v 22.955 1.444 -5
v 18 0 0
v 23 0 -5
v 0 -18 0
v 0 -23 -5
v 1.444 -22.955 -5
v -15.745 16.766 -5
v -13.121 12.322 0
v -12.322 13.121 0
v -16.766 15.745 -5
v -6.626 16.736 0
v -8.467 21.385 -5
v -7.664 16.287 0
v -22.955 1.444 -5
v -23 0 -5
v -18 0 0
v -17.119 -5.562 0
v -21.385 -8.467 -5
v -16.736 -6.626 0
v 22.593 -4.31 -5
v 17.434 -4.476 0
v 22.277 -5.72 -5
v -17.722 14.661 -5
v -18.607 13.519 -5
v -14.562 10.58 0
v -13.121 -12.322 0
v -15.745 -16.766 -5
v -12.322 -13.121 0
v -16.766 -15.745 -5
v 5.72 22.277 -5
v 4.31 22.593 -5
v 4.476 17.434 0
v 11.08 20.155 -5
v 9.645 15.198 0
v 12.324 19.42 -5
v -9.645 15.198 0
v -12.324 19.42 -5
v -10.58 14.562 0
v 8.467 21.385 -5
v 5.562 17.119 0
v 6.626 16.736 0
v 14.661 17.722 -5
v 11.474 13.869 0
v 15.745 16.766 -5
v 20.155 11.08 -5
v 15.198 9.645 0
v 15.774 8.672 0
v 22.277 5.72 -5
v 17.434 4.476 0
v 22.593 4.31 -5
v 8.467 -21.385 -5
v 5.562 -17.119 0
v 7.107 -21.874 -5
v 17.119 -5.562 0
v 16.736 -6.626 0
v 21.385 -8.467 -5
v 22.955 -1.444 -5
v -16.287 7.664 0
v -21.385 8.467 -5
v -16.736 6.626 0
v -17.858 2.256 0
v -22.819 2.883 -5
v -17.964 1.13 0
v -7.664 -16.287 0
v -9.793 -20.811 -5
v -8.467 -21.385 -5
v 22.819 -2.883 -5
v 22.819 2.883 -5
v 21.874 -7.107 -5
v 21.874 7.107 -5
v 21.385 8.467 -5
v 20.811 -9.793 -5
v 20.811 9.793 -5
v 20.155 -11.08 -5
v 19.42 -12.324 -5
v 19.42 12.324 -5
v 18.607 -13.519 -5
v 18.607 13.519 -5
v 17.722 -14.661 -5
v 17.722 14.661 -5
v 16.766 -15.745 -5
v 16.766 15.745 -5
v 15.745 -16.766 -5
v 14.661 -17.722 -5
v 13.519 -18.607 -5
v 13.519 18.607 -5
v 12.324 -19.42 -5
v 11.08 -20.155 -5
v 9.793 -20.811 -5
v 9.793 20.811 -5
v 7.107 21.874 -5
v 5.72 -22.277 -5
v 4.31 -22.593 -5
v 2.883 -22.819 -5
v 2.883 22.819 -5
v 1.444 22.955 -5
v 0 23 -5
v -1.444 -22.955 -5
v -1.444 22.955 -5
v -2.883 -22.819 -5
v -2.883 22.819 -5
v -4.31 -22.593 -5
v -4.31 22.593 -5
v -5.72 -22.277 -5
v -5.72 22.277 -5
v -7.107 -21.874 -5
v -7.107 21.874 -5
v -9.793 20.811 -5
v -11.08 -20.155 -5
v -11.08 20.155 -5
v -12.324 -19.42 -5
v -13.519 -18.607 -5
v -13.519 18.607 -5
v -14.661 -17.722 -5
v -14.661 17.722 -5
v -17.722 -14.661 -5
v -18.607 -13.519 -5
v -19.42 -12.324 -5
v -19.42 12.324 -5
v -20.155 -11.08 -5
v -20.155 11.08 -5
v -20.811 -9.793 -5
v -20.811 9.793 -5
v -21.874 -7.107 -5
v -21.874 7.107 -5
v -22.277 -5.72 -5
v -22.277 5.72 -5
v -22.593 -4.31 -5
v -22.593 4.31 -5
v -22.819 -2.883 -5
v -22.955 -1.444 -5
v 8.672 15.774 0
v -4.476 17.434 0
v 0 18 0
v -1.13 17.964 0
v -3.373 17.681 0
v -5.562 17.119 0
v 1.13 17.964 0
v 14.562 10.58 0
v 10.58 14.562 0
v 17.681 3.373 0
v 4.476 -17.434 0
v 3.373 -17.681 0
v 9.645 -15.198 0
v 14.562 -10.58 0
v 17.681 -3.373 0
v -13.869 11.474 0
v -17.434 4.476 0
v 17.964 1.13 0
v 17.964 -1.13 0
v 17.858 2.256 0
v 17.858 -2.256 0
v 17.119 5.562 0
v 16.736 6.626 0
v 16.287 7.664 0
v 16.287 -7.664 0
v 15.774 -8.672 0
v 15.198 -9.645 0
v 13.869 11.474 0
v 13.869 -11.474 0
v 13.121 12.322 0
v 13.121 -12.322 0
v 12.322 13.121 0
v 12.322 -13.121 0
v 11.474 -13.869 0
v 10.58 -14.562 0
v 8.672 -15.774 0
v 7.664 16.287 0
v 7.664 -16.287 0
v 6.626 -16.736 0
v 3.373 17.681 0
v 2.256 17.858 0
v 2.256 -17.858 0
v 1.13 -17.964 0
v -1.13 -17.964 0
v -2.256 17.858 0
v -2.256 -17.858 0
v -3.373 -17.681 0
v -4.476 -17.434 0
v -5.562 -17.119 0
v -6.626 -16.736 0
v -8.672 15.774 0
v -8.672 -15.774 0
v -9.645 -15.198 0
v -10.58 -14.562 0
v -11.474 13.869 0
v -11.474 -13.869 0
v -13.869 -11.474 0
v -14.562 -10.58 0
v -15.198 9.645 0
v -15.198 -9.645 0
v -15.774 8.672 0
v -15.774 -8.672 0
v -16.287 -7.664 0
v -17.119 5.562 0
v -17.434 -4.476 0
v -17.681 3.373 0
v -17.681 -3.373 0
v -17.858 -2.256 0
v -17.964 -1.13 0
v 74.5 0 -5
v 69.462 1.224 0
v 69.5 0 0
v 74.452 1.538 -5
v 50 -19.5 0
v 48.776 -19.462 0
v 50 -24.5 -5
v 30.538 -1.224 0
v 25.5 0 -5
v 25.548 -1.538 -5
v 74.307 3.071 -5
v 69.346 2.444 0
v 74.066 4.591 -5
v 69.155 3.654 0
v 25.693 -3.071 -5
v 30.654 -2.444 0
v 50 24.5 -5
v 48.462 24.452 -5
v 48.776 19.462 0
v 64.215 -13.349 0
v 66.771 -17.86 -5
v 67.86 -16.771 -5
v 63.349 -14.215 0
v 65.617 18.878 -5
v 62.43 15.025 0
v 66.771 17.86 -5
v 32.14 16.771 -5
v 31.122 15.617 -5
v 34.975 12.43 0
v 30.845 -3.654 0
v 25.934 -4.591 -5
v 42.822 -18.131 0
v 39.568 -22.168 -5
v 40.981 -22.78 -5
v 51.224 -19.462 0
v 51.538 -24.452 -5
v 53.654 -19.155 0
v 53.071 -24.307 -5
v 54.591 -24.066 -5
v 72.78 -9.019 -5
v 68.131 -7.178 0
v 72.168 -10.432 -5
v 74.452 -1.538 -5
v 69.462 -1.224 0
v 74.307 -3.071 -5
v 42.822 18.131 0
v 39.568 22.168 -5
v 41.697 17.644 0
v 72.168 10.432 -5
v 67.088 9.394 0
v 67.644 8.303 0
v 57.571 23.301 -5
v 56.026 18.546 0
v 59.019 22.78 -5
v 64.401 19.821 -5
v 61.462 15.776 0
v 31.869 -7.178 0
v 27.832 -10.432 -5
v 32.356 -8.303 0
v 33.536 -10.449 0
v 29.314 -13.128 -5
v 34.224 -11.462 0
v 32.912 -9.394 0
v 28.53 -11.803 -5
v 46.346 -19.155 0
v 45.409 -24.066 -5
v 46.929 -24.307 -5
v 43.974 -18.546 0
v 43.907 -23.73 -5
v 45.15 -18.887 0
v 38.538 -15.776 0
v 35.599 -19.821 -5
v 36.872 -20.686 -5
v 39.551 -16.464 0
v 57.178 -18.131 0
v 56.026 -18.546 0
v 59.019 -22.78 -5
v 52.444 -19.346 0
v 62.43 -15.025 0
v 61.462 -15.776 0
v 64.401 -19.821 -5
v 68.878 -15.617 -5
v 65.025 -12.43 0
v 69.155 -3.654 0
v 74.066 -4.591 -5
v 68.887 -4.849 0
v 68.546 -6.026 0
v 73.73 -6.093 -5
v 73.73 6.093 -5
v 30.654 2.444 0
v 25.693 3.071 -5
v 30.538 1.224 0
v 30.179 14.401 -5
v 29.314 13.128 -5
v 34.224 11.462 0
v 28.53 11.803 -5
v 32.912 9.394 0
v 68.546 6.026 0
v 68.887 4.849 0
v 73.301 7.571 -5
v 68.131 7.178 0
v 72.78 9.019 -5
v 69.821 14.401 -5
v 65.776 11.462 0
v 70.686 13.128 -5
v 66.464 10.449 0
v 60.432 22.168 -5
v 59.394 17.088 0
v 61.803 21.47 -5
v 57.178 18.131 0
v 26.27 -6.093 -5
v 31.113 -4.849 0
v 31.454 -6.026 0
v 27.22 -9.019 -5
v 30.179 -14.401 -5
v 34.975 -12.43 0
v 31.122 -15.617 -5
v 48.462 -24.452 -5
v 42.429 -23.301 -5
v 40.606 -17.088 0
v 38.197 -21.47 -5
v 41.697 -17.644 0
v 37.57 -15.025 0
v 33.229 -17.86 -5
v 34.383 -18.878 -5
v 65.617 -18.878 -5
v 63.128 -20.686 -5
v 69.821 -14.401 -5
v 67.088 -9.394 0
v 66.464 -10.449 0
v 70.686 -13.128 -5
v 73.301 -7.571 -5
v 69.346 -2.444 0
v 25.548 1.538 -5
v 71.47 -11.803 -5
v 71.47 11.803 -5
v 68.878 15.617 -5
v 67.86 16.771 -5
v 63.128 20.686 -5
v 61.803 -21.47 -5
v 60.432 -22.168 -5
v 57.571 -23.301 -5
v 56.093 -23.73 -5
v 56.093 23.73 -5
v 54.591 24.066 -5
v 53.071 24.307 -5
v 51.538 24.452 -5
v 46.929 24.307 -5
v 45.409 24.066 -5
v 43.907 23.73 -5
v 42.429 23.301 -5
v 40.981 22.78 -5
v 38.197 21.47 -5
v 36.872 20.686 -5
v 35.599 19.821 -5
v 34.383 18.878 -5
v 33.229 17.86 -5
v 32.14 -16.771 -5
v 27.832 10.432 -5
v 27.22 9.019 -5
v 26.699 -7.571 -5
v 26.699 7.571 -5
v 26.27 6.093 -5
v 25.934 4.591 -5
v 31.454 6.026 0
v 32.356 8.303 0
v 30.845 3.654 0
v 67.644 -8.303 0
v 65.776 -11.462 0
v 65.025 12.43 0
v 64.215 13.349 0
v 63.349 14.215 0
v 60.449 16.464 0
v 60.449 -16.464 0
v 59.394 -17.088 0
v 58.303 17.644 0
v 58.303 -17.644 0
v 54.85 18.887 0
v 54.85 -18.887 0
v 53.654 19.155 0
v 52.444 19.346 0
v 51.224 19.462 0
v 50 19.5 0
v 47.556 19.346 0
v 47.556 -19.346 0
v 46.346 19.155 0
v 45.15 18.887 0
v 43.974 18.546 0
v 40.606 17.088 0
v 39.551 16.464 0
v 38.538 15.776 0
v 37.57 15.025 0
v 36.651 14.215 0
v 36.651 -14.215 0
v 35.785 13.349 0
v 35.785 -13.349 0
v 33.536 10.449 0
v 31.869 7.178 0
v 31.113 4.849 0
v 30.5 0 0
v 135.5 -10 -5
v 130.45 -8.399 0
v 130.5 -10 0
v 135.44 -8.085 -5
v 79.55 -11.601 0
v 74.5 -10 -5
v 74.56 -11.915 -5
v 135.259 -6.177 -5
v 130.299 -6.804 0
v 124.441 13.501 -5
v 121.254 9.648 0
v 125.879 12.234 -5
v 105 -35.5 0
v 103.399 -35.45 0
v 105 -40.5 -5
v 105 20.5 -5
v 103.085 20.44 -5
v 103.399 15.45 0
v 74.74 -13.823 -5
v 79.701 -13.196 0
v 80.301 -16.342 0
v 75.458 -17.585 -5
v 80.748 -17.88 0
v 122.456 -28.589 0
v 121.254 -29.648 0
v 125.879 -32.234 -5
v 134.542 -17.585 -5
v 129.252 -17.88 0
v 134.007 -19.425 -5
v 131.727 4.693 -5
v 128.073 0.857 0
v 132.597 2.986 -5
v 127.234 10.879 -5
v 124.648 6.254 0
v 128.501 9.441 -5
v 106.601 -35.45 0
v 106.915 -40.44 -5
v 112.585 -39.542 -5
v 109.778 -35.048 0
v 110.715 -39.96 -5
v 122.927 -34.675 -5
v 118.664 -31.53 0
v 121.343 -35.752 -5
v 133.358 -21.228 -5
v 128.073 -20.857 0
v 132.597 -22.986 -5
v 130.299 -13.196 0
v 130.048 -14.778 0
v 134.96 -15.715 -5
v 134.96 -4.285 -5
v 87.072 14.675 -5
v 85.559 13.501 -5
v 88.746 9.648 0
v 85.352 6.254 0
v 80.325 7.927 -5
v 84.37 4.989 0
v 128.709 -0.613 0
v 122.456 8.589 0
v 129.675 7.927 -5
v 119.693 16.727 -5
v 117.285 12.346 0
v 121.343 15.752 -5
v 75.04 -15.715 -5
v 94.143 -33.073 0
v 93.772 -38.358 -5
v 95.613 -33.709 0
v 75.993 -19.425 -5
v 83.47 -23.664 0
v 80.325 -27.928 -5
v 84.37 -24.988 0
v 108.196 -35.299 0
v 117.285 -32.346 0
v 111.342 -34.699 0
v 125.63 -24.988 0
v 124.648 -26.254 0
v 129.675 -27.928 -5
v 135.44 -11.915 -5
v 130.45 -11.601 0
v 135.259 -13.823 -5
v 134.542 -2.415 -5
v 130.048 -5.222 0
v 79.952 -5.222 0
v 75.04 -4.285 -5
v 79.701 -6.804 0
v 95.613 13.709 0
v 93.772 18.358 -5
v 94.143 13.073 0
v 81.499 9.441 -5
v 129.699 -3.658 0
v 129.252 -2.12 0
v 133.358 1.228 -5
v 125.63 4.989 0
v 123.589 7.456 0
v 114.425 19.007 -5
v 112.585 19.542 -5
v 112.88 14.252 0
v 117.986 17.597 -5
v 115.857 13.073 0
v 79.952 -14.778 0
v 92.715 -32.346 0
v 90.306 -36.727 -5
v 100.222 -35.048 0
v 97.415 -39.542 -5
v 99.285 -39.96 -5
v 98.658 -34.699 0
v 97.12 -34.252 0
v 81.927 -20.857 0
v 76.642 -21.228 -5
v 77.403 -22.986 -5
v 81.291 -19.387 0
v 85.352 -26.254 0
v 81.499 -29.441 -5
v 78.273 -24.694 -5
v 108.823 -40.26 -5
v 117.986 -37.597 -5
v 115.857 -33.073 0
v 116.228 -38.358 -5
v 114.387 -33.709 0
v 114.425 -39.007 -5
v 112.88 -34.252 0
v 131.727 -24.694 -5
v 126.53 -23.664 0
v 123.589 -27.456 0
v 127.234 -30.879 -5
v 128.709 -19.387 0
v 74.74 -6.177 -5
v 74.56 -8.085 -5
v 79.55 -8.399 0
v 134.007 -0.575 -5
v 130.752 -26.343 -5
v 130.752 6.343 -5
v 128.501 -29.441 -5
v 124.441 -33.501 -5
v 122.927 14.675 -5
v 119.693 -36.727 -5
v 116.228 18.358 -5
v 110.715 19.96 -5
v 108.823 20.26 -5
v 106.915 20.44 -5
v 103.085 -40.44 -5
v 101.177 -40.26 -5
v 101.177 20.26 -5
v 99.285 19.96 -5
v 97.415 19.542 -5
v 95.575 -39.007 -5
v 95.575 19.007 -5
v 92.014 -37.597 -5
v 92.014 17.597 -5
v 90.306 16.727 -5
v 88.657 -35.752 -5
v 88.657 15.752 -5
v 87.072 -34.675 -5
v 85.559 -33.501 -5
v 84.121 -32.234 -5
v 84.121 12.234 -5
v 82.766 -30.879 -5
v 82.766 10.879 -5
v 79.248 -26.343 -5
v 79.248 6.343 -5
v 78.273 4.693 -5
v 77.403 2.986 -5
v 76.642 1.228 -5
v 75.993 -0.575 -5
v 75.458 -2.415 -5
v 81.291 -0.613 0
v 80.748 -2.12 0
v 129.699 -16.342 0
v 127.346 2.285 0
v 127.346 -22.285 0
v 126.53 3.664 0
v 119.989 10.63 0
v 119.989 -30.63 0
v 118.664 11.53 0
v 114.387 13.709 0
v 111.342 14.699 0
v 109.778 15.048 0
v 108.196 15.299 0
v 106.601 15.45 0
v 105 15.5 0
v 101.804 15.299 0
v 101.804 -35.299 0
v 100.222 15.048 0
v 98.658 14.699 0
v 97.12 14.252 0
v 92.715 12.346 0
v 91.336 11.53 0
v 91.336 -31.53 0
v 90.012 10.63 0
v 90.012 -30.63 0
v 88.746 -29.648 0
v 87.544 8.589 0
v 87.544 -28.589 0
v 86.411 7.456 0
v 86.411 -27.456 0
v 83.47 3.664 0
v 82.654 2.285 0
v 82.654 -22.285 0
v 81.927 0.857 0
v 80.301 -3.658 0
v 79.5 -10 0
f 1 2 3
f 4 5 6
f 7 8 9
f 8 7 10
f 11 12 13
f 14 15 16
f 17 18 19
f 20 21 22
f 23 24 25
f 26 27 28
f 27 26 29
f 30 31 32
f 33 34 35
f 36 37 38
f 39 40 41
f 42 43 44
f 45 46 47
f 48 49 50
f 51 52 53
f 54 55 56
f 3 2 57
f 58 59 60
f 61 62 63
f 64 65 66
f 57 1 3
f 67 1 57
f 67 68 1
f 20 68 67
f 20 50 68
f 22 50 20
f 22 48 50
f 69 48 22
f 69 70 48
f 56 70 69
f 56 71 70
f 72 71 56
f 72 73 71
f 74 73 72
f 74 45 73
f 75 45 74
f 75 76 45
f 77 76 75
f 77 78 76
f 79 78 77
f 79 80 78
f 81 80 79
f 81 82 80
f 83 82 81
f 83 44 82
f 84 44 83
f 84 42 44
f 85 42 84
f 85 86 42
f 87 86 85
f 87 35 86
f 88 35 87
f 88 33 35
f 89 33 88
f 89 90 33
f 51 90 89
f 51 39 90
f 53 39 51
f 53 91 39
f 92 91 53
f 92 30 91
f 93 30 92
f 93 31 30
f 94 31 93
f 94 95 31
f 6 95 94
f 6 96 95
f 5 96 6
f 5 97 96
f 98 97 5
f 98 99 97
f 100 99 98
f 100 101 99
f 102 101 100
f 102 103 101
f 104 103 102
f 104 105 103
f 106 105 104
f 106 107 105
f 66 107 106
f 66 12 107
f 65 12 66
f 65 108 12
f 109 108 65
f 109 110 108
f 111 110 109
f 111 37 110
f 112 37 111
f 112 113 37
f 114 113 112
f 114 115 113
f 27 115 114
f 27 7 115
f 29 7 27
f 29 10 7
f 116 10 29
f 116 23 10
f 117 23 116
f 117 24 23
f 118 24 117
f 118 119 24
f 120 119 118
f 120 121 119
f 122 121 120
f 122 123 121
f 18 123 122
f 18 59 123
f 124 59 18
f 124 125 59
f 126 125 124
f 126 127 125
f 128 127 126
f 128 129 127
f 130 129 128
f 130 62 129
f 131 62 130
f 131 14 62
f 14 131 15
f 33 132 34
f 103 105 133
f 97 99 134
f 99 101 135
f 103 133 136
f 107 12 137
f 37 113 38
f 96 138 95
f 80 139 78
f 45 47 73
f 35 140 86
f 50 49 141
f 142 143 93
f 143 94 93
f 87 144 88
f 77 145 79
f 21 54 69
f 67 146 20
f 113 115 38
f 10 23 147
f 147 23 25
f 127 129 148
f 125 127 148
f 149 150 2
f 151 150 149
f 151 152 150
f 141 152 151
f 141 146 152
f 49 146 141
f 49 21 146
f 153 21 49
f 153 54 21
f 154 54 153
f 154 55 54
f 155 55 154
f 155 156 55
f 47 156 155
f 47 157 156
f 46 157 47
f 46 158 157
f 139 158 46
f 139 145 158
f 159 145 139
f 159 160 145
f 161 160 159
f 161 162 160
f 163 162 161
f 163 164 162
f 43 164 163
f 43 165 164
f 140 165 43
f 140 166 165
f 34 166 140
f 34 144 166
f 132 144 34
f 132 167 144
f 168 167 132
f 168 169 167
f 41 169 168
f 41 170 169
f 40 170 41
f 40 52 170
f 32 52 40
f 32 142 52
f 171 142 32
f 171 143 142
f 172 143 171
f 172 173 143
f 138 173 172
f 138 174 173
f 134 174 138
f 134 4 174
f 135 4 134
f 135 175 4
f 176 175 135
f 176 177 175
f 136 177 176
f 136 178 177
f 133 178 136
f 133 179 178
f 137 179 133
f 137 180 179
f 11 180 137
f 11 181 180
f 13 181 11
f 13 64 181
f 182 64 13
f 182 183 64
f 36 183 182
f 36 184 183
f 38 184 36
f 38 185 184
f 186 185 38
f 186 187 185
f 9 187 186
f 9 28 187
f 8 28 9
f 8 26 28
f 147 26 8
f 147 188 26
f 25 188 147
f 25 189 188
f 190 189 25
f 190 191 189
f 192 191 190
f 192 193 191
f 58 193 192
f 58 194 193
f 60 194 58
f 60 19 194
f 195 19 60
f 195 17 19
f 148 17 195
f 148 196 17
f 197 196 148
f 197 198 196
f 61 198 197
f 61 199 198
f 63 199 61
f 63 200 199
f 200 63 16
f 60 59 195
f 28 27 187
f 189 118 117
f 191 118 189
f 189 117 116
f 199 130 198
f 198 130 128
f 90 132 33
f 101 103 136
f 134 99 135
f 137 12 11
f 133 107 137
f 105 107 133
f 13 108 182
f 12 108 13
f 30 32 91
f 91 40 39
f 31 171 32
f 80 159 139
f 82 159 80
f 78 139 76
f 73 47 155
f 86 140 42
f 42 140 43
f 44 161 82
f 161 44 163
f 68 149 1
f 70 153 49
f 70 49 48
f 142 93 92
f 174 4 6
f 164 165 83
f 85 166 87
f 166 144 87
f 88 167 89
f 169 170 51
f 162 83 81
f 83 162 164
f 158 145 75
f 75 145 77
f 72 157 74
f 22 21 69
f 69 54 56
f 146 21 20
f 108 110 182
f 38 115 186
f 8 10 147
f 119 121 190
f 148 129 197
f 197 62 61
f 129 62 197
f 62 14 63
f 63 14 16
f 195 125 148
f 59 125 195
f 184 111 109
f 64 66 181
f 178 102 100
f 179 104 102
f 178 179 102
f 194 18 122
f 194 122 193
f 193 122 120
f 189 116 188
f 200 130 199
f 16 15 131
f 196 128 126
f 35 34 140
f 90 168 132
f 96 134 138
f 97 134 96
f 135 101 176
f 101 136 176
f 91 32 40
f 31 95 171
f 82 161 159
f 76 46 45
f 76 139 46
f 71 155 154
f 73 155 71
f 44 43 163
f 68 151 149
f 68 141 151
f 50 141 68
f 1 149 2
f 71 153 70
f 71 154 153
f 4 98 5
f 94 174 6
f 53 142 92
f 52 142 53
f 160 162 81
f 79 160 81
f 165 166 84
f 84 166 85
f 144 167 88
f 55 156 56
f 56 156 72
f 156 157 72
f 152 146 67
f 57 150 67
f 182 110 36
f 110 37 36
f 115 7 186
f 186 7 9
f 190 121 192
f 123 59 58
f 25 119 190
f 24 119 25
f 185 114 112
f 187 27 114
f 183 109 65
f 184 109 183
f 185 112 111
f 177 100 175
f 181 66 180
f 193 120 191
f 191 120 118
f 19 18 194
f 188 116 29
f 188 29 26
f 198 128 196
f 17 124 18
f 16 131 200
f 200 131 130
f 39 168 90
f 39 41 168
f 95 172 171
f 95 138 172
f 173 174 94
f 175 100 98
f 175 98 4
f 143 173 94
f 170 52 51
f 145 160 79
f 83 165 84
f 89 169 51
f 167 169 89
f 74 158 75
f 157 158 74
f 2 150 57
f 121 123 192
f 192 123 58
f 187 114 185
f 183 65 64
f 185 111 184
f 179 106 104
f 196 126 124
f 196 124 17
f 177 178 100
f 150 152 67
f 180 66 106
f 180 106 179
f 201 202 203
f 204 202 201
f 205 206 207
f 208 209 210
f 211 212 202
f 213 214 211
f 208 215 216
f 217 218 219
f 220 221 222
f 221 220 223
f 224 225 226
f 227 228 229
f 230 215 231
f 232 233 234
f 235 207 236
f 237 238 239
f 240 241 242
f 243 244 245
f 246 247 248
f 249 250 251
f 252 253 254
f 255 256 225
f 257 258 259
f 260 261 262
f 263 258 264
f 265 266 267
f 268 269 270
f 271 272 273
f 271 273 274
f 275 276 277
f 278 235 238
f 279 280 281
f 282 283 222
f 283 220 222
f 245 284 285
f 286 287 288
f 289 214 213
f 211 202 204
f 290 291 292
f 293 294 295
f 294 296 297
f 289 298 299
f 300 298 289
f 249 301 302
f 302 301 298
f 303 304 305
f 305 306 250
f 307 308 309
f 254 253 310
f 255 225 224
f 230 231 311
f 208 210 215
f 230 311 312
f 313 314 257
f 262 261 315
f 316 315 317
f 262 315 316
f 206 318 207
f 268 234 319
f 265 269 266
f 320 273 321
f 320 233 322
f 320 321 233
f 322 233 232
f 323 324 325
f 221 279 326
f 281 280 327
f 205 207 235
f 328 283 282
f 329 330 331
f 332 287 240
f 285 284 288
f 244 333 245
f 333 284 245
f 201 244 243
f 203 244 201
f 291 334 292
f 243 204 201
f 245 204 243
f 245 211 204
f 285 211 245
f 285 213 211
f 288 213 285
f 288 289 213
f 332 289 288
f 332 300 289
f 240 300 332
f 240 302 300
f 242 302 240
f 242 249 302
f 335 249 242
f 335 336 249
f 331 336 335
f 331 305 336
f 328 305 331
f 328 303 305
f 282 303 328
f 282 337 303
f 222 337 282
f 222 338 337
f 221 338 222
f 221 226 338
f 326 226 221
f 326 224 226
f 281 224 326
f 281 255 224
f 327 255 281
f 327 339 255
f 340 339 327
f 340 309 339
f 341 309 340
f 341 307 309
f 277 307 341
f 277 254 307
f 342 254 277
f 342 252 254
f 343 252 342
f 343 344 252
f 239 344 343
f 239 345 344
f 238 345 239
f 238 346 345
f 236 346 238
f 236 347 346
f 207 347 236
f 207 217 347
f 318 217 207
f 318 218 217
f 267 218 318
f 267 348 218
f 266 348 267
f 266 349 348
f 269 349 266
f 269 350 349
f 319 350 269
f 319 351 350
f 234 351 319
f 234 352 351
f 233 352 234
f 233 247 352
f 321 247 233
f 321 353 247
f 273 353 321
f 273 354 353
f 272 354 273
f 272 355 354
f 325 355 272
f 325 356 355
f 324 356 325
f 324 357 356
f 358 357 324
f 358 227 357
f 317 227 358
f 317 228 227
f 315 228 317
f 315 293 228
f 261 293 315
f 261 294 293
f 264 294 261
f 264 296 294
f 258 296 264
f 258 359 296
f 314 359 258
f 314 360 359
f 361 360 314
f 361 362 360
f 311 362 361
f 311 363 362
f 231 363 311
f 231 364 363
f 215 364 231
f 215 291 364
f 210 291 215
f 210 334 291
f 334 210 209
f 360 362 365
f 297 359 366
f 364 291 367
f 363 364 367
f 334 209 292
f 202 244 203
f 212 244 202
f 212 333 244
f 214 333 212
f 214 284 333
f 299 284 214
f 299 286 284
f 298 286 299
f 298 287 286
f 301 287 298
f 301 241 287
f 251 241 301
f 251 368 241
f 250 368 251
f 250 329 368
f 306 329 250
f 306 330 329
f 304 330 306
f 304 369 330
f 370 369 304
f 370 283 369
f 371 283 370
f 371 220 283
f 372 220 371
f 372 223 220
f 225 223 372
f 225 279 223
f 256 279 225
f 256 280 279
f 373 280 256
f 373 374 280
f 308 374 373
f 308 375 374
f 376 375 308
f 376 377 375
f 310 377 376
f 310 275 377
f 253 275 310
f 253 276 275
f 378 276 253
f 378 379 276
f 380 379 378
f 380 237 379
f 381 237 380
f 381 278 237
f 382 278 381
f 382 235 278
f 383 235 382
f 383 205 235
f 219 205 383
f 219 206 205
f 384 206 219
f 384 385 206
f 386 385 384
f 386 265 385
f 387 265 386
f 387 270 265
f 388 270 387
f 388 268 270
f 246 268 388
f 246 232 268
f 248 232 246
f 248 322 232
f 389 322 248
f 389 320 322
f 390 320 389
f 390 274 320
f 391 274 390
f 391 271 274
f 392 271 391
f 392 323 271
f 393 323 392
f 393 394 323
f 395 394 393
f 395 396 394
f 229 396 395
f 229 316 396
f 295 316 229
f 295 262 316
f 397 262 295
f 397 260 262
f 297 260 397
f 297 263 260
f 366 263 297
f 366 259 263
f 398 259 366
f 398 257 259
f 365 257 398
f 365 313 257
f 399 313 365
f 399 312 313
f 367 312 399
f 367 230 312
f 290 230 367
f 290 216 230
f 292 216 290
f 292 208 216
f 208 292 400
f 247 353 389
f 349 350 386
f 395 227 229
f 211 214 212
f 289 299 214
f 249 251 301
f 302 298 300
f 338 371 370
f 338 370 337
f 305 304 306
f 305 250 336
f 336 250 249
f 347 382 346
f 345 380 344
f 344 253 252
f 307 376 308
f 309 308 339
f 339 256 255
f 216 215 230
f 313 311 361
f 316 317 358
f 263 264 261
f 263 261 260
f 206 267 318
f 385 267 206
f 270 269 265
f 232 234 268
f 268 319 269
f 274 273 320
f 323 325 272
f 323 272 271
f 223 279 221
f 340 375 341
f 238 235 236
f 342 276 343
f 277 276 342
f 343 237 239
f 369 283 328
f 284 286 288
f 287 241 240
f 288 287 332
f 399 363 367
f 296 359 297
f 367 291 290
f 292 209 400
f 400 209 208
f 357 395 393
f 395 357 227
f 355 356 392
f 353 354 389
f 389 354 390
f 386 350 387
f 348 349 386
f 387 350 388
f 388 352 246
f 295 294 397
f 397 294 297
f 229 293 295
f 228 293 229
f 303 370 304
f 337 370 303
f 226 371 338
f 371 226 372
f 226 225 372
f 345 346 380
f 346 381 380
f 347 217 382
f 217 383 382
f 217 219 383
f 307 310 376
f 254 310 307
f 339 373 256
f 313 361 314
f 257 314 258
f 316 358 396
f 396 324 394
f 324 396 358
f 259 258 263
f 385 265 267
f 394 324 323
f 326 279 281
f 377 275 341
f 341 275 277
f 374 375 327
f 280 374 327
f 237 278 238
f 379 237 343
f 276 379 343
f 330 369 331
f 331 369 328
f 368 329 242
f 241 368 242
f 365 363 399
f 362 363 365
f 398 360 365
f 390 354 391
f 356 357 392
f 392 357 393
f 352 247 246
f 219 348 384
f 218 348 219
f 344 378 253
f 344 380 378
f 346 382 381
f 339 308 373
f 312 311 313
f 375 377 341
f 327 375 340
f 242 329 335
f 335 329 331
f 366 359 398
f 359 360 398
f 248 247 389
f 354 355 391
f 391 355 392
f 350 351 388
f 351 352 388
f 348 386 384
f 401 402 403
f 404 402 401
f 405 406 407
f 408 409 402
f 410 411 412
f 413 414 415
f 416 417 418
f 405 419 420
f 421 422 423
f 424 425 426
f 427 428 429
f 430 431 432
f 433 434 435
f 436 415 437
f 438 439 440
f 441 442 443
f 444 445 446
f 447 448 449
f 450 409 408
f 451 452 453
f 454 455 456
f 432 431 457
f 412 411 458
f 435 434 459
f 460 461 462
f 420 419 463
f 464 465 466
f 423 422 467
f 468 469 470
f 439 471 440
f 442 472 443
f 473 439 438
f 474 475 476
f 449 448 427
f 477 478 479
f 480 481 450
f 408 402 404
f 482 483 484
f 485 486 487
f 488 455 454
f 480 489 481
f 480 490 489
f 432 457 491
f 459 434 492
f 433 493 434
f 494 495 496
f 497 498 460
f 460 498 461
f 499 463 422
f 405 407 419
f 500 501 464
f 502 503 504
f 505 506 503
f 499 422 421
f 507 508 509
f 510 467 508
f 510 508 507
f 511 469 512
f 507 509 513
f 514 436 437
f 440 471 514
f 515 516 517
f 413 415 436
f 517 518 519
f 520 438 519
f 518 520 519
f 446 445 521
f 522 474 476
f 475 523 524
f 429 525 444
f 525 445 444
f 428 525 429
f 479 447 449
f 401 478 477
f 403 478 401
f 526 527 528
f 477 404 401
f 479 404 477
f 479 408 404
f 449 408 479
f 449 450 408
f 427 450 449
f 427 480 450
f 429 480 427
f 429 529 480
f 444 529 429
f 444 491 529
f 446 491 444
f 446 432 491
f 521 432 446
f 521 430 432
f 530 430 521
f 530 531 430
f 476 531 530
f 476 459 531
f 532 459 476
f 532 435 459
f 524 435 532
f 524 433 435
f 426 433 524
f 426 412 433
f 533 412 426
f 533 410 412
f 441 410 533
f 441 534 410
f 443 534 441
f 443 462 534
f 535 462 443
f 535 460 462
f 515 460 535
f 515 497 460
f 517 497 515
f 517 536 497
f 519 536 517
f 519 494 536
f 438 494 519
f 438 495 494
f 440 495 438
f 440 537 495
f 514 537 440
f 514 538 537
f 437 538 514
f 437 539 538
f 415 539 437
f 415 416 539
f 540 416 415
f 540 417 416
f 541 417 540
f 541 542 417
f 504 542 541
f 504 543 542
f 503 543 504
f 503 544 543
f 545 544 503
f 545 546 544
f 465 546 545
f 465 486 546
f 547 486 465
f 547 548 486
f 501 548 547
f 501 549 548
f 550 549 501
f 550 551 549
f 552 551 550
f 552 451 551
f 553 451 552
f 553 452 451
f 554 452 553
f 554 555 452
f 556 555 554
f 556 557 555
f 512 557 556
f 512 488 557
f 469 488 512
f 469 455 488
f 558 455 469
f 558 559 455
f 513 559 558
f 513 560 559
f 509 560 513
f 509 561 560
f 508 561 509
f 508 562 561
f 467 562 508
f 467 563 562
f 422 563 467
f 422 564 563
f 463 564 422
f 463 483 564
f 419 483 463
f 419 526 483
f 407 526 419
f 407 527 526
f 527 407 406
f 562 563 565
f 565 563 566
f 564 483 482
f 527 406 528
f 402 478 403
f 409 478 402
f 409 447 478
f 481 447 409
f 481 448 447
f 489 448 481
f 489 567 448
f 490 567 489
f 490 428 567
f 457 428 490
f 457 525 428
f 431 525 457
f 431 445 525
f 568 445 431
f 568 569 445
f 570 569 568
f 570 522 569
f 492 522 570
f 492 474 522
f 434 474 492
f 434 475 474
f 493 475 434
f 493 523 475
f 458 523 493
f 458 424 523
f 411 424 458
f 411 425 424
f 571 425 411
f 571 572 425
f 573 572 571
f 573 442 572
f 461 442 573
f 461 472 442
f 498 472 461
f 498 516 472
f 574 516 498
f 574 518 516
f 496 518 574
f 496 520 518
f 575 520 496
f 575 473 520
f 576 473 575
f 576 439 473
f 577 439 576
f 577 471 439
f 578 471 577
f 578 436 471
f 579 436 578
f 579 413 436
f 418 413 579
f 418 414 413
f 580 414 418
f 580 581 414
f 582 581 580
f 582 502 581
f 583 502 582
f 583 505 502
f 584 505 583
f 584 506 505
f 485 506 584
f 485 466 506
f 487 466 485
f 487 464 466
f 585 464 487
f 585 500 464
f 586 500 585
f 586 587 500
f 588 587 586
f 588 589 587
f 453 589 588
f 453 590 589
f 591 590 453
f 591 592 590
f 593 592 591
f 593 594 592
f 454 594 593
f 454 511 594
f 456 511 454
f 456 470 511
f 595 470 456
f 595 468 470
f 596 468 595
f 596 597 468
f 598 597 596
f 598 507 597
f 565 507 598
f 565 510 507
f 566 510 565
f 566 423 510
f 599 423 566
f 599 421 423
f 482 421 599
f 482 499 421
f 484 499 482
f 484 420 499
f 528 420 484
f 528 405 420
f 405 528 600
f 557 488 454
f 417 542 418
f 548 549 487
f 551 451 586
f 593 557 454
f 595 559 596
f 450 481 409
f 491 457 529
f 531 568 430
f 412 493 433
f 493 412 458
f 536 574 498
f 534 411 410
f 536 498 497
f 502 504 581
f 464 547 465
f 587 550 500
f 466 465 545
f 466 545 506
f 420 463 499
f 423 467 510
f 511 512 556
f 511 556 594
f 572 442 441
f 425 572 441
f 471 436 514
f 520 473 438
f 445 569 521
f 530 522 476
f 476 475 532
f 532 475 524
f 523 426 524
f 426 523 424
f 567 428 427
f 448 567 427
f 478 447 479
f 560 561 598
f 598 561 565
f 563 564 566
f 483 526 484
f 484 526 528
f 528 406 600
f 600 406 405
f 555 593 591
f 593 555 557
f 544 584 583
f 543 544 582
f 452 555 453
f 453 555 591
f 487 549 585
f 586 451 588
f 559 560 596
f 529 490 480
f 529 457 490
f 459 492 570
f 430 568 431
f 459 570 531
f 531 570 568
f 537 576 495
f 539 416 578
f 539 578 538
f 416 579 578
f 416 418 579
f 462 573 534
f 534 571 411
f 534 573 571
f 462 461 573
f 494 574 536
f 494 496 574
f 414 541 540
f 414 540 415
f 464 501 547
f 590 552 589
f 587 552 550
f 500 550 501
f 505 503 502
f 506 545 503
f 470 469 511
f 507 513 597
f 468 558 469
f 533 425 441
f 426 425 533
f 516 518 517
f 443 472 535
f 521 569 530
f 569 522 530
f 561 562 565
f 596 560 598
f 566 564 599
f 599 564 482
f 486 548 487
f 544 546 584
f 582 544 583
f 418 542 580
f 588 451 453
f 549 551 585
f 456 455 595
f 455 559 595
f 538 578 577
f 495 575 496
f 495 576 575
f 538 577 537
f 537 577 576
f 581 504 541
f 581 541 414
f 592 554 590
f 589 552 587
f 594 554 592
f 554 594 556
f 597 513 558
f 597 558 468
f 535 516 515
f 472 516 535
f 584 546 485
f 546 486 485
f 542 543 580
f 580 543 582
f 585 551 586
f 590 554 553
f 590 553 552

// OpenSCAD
$fn = 100;

translate([0, 0, 0])
    rotate([0, 0, 0])
        translate([0, 0, -5])
            cylinder(5, 23, 18, false);

translate([50, 0, 0])
    rotate([0, 0, 0])
        translate([0, 0, -5])
            cylinder(5, 24.5, 19.5, false);

translate([105, -10, 0])
    rotate([0, 0, 0])
        translate([0, 0, -5])
            cylinder(5, 30.5, 25.5, false);
